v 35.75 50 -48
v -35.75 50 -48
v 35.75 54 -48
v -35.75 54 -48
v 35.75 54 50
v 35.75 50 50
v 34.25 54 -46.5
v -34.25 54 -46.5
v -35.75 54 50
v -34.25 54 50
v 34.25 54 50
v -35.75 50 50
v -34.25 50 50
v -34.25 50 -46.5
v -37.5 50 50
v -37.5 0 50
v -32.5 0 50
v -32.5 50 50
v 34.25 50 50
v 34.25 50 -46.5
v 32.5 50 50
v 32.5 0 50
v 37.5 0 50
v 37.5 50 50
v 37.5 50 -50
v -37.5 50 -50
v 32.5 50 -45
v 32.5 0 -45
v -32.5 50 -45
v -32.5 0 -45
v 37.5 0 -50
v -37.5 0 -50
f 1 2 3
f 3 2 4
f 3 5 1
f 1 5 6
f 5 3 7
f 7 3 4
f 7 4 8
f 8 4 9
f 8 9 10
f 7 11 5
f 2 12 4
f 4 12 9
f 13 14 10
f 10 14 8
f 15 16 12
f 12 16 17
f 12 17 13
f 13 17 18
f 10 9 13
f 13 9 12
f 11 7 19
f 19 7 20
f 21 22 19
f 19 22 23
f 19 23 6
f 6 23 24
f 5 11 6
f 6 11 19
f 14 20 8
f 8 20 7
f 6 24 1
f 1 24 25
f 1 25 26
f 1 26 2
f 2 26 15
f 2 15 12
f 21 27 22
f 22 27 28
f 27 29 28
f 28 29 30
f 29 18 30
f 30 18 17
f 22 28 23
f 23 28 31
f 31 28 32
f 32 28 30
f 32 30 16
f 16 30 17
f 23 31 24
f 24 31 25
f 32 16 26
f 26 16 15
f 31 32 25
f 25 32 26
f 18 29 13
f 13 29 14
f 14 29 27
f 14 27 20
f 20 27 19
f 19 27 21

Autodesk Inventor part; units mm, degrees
ref_plane "YZ Plane" through (0, 0, 0) normal (1, 0, 0) x (0, 1, 0)
ref_plane "XZ Plane" through (0, 0, 0) normal (0, 1, 0) x (-1, 0, 0)
ref_plane "XY Plane" through (0, 0, 0) normal (0, 0, 1) x (1, 0, 0)
sketch "Sketch1" plane through (0, 0, 0) normal (0, 1, 0) x (-1, 0, 0)
  line L0 (-37.5, -50) -> (37.5, -50)
  line L1 (37.5, -50) -> (37.5, 50)
  line L2 (37.5, 50) -> (-37.5, 50)
  line L3 (-37.5, 50) -> (-37.5, -50)
  line L4 (-37.5, -50) -> (37.5, 50) construction
  line L5 (37.5, -50) -> (-37.5, 50) construction
  point P0 (0, 0)
  dimension "d0" = 75
  dimension "d1" = 100
extrude "Extrusion1" add sketch "Sketch1" along normal blind 50
sketch "Sketch2" plane through (0, 50, 0) normal (0, 1, 0) x (1, 0, 0)
  line L0 (-37.5, -50) -> (37.5, -50) projected
  line L1 (-32.5, -50) -> (32.5, -50)
  line L2 (32.5, -50) -> (32.5, 45)
  line L3 (32.5, 45) -> (-32.5, 45)
  line L4 (-32.5, 45) -> (-32.5, -50)
  point P0 (0, 0)
  dimension "d4" = 65
  dimension "d5" = 95
extrude "Extrusion2" cut sketch "Sketch2" against normal blind 50
sketch "Sketch3" plane through (0, 50, 0) normal (0, 1, 0) x (1, 0, 0)
  line L0 (-37.5, -50) -> (-32.5, -50) projected
  line L1 (-36, -50) -> (-34, -50)
  line L2 (-34, -50) -> (-34, 48.5)
  line L3 (-34, 48.5) -> (-36, 48.5)
  line L4 (-36, 48.5) -> (-36, -50)
  line L5 (-36, 48.5) -> (36, 48.5)
  line L6 (36, 48.5) -> (36, 46.5)
  line L7 (36, 46.5) -> (-36, 46.5)
  line L8 (-36, 46.5) -> (-36, 48.5)
  line L9 (36, 48.5) -> (34, 48.5)
  line L10 (34, 48.5) -> (34, -50)
  line L11 (34, -50) -> (36, -50)
  line L12 (36, -50) -> (36, 48.5)
  point P0 (0, 0)
  dimension "d8" = 2
  dimension "d9" = 98.5
  dimension "d10" = 72
  dimension "d11" = 2
extrude "Extrusion3" add sketch "Sketch3" along normal blind 4
sketch "Sketch4" plane through (36, 50, 50) normal (1, 0, 0) x (0, 0, -1)
  line L0 (0, 0) -> (100, 0) projected
  line L1 (98.5, 0) -> (98.5, 4) projected
  line L2 (0, 0) -> (98.5, 0)
  line L3 (98.5, 0) -> (98.5, 4)
  line L4 (98.5, 4) -> (0, 4)
  line L5 (0, 4) -> (0, 0)
  point P0 (50, -50)
extrude "Extrusion4" cut sketch "Sketch4" against normal blind 0.25
sketch "Sketch5" plane through (34, 50, -46.5) normal (-1, 0, 0) x (0, 0, 1)
  line L0 (96.5, 0) -> (96.5, 4) projected
  line L1 (96.5, 0) -> (0, 0) projected
  line L2 (96.5, 4) -> (0, 4)
  line L3 (0, 4) -> (0, 0)
  line L4 (0, 0) -> (96.5, 0)
  line L5 (96.5, 0) -> (96.5, 4)
  point P0 (46.5, -50)
extrude "Extrusion5" cut sketch "Sketch5" against normal blind 0.25
sketch "Sketch6" plane through (-36, 50, -48.5) normal (0, 0, -1) x (-1, 0, 0)
  line L0 (-71.75, 4) -> (0, 4) projected
  line L1 (0, 0) -> (-71.75, 0) projected
  line L2 (0, 4) -> (-71.75, 4)
  line L3 (-71.75, 4) -> (-71.75, 0)
  line L4 (-71.75, 0) -> (0, 0)
  line L5 (0, 0) -> (0, 4)
  point P0 (-36, -50)
extrude "Extrusion6" cut sketch "Sketch6" against normal blind 0.25
sketch "Sketch7" plane through (-34, 50, 50) normal (1, 0, 0) x (0, 0, -1)
  line L0 (0, 0) -> (0, 4) projected
  line L1 (0, 4) -> (96.5, 4) projected
  line L2 (0, 0) -> (96.5, 0)
  line L3 (96.5, 0) -> (96.5, 4)
  line L4 (96.5, 4) -> (0, 4)
  line L5 (0, 4) -> (0, 0)
  point P0 (50, -50)
extrude "Extrusion7" cut sketch "Sketch7" against normal blind 0.25
sketch "Sketch8" plane through (-36, 50, 50) normal (-1, 0, 0) x (0, 0, 1)
  line L0 (0, 4) -> (-96.5, 4) projected
  line L1 (-98.25, 0) -> (0, 0) projected
  line L2 (0, 4) -> (-98.25, 4)
  line L3 (-98.25, 4) -> (-98.25, 0)
  line L4 (-98.25, 0) -> (0, 0)
  line L5 (0, 0) -> (0, 4)
  point P0 (-50, -50)
extrude "Extrusion8" cut sketch "Sketch8" against normal blind 0.25
sketch "Sketch9" plane through (-36, 50, -48.25) normal (0, 0, -1) x (-1, 0, 0)
  line L0 (-72, 4) -> (0, 4)
  line L1 (0, 4) -> (0, 0)
  line L2 (0, 0) -> (-72, 0)
  line L3 (-72, 0) -> (-72, 4)
  point P0 (-36, -50)
extrude "Extrusion9" cut sketch "Sketch9" against normal blind 0.25
properties part number "tb3_start_walls_v2"
